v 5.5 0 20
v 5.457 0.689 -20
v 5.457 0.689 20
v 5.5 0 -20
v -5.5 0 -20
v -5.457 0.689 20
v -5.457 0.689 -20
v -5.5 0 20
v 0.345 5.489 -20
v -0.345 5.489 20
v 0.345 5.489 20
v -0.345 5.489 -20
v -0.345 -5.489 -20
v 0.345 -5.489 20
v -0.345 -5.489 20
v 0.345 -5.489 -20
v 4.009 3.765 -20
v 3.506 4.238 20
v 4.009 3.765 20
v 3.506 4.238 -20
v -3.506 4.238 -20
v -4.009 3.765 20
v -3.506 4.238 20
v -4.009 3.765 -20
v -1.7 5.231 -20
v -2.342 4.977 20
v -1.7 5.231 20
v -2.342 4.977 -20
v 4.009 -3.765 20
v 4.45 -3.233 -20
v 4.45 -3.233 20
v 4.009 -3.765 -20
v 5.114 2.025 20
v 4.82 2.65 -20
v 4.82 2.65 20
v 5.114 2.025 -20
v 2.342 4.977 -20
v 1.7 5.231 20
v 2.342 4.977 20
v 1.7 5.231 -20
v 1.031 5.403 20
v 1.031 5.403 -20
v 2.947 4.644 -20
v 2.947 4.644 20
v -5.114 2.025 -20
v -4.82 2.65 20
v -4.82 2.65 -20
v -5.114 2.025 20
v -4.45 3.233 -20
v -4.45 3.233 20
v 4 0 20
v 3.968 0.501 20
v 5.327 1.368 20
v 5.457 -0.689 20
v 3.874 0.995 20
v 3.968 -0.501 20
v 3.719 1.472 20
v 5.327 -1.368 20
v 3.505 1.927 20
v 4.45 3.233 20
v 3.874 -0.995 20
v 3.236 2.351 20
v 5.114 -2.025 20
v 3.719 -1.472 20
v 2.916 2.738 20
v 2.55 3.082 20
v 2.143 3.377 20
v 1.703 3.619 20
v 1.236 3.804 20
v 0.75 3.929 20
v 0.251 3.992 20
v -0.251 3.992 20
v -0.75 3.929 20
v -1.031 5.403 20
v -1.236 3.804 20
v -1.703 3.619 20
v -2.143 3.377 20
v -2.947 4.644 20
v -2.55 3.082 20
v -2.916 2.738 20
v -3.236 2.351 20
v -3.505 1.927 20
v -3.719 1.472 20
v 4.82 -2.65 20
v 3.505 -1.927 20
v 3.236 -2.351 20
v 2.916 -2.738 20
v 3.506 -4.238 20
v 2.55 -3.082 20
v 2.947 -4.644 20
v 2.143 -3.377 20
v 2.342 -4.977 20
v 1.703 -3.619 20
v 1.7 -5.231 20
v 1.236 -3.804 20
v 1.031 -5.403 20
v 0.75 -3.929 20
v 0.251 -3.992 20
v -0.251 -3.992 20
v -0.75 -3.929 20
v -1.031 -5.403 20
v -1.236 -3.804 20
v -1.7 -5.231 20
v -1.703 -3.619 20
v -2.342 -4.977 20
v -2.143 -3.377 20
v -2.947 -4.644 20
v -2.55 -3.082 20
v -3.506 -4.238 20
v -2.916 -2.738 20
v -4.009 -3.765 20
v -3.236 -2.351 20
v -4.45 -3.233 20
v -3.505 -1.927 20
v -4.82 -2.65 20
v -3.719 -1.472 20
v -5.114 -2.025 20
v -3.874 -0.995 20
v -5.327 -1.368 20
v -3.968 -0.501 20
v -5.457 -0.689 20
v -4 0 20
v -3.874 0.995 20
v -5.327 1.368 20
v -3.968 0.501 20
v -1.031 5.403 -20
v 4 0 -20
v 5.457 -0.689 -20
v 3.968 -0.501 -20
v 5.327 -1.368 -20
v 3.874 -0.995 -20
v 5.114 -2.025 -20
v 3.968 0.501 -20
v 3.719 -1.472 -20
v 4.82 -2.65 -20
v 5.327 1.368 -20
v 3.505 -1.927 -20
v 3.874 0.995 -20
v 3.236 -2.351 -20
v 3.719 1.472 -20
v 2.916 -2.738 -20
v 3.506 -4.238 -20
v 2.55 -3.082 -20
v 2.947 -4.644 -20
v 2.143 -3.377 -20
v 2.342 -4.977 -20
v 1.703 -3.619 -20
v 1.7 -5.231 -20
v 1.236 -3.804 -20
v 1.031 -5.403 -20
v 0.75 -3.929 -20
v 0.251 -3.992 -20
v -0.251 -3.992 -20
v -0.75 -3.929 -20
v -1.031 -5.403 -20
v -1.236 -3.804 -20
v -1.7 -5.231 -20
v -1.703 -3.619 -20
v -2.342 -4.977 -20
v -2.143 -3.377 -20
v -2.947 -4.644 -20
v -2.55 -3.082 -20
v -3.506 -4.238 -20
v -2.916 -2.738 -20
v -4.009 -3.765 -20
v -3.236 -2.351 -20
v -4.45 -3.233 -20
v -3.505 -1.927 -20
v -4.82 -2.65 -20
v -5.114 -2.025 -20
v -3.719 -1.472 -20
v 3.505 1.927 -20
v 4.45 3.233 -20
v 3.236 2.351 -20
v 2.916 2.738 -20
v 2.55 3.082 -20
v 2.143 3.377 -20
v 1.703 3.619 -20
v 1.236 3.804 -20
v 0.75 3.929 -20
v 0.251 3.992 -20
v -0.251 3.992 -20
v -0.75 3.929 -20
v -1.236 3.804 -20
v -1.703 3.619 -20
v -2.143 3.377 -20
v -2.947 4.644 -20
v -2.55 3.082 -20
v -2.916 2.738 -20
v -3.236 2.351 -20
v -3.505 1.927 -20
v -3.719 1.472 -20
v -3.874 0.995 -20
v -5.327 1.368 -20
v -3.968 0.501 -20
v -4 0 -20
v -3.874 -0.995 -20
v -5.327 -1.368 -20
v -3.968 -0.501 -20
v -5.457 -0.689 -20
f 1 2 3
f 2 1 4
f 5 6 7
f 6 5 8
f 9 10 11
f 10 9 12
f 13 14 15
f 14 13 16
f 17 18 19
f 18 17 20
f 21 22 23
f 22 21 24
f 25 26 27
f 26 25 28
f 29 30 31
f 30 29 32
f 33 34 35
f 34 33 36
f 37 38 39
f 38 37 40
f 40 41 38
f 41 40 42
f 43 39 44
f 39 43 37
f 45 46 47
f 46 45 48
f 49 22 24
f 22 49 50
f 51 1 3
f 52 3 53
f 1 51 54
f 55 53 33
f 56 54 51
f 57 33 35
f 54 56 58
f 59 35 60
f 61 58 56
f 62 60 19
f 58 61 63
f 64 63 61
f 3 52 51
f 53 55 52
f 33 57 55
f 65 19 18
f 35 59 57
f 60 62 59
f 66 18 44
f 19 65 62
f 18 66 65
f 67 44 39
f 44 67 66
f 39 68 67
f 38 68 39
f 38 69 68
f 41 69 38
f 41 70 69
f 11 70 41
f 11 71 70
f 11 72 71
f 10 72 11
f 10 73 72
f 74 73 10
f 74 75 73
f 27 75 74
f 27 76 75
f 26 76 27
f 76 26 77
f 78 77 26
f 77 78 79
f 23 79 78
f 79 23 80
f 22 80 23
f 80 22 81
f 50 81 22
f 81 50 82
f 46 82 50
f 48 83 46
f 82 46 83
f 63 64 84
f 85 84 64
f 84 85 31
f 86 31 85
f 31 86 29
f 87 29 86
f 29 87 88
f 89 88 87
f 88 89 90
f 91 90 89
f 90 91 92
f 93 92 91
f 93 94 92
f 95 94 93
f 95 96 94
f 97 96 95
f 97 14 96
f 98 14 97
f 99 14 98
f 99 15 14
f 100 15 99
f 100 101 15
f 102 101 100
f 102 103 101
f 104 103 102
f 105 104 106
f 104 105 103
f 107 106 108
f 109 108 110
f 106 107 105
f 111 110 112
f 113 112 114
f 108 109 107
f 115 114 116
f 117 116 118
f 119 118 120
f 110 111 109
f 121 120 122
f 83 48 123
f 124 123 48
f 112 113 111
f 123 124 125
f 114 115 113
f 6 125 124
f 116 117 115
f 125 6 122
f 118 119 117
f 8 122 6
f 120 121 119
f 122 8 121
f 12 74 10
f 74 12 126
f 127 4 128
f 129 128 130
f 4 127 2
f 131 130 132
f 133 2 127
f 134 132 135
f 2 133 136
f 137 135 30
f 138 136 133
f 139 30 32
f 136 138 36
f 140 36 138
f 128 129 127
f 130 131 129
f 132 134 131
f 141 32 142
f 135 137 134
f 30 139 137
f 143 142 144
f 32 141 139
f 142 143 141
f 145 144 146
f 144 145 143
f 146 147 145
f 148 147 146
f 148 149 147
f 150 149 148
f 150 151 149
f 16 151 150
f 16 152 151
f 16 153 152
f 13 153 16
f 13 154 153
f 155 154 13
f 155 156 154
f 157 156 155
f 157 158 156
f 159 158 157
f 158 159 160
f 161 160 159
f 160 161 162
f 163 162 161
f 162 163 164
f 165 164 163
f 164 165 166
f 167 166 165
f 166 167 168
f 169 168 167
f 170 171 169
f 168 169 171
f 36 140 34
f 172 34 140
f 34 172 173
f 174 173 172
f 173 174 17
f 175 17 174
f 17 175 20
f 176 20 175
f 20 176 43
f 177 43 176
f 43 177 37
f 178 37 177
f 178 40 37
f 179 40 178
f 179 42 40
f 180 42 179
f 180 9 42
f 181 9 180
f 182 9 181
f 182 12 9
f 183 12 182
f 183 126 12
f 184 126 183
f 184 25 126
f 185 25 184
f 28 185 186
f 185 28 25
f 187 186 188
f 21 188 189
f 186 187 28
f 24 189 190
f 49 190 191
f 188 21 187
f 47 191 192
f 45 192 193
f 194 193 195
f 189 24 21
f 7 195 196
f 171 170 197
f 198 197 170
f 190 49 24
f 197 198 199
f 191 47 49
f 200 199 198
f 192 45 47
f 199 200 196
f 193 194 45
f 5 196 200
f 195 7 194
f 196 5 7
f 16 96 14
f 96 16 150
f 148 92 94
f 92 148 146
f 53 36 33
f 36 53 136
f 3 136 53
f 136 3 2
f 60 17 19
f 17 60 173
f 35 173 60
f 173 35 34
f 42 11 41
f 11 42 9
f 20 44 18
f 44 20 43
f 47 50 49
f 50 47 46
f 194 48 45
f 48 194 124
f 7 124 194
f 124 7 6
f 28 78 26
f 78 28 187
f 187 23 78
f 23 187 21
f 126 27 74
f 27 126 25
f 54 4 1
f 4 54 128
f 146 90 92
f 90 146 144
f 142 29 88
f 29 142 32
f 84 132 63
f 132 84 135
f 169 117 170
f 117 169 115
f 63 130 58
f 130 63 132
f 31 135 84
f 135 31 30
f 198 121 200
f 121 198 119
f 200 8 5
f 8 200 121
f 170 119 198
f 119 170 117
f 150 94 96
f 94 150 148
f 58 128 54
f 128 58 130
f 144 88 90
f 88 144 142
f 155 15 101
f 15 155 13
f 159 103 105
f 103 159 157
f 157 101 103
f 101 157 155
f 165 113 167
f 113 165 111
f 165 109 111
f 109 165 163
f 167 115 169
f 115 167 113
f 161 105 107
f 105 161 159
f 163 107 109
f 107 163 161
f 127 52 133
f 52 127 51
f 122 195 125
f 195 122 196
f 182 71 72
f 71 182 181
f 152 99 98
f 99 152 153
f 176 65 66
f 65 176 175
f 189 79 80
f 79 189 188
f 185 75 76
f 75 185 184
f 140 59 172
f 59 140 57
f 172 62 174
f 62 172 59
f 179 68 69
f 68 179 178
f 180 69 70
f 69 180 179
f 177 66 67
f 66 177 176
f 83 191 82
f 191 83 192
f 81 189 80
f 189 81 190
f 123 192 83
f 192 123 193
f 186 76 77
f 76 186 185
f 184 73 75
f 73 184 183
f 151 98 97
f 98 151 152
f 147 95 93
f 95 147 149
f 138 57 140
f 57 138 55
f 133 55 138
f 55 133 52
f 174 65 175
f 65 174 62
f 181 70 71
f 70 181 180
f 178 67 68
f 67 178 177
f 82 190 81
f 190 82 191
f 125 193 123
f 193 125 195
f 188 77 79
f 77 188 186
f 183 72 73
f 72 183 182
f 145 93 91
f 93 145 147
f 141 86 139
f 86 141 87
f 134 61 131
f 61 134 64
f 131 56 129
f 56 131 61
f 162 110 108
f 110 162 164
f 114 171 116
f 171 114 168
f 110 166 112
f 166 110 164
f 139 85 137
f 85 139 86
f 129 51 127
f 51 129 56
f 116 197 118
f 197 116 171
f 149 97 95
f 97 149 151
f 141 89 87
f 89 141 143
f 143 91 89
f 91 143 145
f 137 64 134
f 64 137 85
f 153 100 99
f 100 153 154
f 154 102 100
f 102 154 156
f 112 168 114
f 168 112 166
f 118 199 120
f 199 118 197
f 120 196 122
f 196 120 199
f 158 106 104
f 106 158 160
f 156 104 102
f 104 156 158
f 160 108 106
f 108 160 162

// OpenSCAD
$fn = 50;


difference() {
	union() {
		translate(v = [0, 0, -20.0000000000]) {
			cylinder(h = 40, r = 5.5000000000);
		}
	}
	union() {
		translate(v = [0, 0, -100.0000000000]) {
			cylinder(h = 200, r = 4);
		}
	}
}
